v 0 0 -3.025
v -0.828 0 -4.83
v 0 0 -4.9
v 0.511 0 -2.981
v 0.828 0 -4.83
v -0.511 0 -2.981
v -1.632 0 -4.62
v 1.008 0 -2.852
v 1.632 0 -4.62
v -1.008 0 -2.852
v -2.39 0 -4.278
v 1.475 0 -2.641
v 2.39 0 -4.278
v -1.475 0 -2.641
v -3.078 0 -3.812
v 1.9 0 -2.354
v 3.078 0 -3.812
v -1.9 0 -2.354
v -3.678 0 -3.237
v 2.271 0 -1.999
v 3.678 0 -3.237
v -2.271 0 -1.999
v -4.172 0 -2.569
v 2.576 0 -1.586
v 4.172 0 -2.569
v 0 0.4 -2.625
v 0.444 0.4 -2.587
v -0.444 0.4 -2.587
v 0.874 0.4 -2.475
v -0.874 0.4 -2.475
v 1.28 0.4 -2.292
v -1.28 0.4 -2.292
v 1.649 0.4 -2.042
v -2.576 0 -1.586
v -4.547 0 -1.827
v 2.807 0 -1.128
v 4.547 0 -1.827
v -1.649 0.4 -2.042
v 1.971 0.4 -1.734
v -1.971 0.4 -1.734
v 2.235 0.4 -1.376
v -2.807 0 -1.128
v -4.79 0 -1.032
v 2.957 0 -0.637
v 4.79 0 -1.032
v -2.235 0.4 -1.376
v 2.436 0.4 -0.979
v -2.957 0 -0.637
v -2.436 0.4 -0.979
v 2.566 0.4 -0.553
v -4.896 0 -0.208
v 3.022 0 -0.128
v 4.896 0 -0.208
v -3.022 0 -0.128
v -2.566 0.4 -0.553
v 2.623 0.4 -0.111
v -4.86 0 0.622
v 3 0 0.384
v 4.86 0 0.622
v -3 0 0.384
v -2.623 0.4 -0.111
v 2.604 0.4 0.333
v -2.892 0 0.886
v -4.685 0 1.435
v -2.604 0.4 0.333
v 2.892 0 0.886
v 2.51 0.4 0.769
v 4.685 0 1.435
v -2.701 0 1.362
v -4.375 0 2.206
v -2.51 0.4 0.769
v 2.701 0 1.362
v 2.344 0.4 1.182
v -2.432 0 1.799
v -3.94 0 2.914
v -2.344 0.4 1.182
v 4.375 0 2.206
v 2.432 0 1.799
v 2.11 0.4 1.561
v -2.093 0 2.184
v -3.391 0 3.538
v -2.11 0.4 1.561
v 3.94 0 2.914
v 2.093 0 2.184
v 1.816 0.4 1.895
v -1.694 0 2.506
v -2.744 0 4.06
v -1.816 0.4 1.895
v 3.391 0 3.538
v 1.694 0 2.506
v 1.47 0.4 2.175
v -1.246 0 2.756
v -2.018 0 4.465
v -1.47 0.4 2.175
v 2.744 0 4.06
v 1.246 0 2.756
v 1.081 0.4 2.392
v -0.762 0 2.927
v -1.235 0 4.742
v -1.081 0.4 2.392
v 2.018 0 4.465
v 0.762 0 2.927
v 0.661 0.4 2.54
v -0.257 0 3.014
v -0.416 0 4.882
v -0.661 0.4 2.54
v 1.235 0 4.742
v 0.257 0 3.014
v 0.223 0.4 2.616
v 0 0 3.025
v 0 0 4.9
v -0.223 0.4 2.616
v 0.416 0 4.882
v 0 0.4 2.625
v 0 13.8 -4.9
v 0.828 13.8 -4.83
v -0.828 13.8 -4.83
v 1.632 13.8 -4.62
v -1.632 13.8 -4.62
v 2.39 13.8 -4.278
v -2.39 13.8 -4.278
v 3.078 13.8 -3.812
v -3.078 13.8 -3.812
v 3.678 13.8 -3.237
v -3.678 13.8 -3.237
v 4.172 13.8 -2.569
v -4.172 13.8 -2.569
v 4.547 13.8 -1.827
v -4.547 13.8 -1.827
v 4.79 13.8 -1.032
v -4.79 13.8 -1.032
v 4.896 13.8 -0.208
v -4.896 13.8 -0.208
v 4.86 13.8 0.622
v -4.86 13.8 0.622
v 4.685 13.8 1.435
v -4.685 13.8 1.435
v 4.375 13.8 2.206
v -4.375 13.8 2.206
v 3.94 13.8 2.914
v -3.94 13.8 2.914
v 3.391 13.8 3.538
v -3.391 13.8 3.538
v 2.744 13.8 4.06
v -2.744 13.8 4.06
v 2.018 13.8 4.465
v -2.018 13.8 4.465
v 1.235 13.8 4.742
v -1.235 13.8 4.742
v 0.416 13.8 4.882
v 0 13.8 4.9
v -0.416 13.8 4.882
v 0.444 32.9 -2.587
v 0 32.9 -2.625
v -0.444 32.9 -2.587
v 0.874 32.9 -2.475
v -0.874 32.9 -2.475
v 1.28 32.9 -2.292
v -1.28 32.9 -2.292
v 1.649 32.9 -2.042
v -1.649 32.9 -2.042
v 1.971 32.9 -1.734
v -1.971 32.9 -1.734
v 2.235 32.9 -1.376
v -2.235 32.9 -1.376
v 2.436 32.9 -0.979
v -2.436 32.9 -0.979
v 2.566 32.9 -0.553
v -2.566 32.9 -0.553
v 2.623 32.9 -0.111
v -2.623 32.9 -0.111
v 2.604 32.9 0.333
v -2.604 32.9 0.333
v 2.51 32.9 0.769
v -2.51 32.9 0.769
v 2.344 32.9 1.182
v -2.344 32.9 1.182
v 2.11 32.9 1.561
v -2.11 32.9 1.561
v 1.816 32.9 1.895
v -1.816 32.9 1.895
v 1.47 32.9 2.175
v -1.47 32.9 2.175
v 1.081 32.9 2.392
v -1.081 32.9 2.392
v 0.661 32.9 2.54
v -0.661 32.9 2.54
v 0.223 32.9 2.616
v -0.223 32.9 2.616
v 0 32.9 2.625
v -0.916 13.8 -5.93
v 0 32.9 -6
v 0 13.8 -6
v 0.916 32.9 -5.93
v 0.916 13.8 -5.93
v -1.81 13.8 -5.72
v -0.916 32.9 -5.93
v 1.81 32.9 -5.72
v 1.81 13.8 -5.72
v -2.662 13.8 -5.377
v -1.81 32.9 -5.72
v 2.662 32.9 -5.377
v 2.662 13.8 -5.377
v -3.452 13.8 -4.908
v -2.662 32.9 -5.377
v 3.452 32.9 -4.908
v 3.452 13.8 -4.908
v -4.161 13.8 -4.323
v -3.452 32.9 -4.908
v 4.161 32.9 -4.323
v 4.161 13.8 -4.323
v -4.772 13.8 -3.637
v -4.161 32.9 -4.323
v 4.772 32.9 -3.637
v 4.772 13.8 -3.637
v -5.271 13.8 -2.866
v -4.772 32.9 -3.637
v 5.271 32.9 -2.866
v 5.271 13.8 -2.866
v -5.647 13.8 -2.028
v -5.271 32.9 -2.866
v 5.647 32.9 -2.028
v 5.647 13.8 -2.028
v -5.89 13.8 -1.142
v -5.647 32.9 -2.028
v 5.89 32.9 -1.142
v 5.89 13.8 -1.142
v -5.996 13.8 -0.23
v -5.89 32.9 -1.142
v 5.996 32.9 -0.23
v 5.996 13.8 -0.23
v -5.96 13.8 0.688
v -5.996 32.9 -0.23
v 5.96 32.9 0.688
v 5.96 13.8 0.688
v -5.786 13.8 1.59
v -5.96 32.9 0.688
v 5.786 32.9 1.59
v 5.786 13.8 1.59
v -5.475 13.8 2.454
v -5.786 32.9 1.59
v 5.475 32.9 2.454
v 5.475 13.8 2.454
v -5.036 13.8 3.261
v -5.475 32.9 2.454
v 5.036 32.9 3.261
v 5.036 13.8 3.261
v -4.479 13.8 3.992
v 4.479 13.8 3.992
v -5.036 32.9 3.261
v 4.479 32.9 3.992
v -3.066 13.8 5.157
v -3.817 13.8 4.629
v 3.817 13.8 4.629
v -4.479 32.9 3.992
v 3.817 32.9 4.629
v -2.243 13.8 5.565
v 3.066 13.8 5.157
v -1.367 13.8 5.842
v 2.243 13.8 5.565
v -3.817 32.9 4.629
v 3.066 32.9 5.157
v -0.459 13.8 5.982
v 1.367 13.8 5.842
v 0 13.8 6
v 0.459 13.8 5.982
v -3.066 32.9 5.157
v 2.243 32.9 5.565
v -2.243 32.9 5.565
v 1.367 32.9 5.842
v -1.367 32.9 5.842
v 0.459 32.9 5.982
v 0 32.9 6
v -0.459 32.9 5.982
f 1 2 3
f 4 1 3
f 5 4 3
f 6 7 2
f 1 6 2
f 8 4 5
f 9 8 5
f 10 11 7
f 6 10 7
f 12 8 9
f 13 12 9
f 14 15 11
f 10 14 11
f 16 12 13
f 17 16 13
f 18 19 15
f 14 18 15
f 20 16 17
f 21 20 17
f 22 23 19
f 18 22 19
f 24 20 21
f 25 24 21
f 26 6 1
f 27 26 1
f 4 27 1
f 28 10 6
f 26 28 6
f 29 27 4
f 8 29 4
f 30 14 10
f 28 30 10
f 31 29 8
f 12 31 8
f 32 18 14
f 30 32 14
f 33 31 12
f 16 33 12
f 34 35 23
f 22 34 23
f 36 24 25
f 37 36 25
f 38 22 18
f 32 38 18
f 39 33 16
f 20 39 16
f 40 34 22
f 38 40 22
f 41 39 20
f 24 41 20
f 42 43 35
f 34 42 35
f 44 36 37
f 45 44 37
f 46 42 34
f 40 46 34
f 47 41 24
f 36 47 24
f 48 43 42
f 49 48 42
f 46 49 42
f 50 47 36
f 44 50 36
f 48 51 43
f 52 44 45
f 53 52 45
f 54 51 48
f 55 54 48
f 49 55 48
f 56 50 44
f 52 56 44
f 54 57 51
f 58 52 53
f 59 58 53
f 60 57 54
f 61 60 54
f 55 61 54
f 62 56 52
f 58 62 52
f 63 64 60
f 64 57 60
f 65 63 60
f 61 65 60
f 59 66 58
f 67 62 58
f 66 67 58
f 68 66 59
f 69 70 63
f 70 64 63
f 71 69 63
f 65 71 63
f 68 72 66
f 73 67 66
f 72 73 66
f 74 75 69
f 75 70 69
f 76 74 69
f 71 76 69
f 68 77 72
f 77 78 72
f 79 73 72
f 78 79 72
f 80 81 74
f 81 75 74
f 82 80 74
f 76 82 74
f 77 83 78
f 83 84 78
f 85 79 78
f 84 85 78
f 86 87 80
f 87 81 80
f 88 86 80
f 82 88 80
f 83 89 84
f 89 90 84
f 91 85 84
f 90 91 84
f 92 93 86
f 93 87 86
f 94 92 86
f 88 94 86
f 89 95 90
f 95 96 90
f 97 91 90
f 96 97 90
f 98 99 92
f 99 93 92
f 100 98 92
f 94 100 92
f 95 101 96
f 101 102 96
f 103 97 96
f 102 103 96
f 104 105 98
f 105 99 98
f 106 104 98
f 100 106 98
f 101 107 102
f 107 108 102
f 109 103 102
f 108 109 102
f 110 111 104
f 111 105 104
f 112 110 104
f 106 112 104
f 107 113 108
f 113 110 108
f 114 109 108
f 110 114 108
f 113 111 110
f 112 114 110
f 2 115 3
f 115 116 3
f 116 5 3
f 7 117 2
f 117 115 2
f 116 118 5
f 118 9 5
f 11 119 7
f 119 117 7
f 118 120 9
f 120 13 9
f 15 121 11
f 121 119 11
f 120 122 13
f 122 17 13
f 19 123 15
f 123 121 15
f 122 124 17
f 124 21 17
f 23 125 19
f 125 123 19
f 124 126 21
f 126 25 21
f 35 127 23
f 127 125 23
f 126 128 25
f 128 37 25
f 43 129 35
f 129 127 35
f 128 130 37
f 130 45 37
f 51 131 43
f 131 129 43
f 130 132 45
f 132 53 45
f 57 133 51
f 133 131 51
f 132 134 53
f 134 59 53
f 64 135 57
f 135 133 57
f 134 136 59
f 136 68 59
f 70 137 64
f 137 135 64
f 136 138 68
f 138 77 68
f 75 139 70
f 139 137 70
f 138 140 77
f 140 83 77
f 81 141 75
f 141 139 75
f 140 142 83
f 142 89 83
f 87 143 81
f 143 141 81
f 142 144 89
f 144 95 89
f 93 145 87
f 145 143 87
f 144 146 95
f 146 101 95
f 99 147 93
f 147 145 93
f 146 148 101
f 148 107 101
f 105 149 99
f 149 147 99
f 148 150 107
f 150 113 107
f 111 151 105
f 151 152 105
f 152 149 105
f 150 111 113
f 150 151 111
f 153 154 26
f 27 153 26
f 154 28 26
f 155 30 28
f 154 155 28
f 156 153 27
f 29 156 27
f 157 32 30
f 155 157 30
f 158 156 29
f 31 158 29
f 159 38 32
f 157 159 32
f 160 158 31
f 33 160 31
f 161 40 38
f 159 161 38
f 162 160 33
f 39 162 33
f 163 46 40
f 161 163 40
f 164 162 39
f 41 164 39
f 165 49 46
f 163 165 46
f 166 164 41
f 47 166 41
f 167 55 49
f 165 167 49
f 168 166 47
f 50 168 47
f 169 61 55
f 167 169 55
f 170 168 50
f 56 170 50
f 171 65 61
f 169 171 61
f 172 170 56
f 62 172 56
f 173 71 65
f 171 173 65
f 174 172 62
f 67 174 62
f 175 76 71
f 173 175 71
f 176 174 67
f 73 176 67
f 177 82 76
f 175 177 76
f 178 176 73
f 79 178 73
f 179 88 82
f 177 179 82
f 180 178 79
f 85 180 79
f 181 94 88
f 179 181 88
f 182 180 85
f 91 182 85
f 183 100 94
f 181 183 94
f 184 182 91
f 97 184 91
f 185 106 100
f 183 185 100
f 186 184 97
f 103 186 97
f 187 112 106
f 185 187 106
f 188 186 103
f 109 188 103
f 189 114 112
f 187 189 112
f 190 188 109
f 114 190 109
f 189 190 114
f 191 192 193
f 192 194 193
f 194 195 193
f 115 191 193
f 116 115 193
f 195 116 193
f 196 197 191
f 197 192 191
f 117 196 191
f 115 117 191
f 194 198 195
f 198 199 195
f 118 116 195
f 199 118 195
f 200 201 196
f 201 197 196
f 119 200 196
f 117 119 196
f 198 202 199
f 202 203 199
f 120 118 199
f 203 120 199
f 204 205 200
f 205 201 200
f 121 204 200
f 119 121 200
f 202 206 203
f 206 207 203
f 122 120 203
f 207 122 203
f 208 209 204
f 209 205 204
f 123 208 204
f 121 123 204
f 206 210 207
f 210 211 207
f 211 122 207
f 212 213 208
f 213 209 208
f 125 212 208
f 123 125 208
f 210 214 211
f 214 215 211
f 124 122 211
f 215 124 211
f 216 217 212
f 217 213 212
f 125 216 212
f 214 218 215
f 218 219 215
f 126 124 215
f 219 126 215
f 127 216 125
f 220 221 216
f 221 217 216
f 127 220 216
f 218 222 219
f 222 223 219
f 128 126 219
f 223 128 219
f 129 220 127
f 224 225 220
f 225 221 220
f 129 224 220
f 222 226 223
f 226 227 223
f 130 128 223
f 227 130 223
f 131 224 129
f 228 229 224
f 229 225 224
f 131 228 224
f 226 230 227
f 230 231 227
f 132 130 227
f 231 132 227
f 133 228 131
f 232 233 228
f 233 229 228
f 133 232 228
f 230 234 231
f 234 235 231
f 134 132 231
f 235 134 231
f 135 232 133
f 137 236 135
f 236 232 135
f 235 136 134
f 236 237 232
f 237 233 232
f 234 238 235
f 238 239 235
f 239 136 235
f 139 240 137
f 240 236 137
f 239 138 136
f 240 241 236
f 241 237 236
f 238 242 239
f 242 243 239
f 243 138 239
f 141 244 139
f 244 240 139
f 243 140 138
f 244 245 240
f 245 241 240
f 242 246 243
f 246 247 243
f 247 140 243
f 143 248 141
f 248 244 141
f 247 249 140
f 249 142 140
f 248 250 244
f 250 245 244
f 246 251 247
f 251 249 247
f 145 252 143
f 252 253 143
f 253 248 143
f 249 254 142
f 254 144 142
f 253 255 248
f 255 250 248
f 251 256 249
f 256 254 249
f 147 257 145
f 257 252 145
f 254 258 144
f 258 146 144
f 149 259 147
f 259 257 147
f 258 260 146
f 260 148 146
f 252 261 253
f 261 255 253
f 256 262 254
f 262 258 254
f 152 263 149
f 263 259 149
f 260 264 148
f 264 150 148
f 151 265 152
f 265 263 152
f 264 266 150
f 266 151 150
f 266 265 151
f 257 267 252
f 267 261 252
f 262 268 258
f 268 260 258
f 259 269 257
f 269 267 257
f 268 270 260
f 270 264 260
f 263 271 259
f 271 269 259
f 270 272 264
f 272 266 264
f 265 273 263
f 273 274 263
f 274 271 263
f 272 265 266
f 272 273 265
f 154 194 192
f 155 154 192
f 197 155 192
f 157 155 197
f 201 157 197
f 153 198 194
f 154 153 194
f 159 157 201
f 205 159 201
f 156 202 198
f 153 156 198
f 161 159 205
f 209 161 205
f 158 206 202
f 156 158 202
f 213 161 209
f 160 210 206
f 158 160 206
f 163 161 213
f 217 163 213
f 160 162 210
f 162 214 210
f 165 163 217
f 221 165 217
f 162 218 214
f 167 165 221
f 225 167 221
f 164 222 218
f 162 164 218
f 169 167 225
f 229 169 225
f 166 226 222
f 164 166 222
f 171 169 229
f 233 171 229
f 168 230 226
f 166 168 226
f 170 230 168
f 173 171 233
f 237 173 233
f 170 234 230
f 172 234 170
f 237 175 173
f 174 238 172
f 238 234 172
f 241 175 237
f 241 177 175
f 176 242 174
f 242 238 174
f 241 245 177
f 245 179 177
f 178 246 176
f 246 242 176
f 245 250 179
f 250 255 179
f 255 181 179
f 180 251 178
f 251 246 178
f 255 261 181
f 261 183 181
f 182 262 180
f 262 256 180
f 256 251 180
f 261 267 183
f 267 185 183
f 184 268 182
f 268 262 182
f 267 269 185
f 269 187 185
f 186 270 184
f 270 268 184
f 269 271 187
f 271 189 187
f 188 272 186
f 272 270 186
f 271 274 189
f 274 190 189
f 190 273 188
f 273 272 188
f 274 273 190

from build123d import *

# Parameters (mm, degrees)
SKETCH1_R           = 4.9
BOSS_EXTRUDE1_DEPTH = 13.8
SKETCH2_R           = 6
BOSS_EXTRUDE2_DEPTH = 19.1
SKETCH7_R           = 2.625
CUT_EXTRUDE1_DEPTH  = 33.9
CHAMFER1_SIZE       = 0.4


with BuildPart() as part:
    # Sketch1 → Boss-Extrude1 (new body)
    with BuildSketch(Plane(origin=(0, 0, 0), x_dir=(1, 0, 0), z_dir=(0, 1, 0))):
        Circle(SKETCH1_R)
    extrude(amount=BOSS_EXTRUDE1_DEPTH)

    # Sketch2 → Boss-Extrude2 (add)
    with BuildSketch(Plane(origin=(0, 13.8, 0), x_dir=(1, 0, 0), z_dir=(0, 1, 0))):
        Circle(SKETCH2_R)
    extrude(amount=BOSS_EXTRUDE2_DEPTH)

    # Sketch7 → Cut-Extrude1 (cut, through all)
    with BuildSketch(Plane(origin=(0, 0, 0), x_dir=(1, 0, 0), z_dir=(0, 1, 0))):
        Circle(SKETCH7_R)
    extrude(amount=CUT_EXTRUDE1_DEPTH, mode=Mode.SUBTRACT)

    # Chamfer1
    chamfer1_edges = [part.edges().sort_by_distance(p)[0] for p in [
        (-2.625, 0, 0),
    ]]
    chamfer(chamfer1_edges, length=CHAMFER1_SIZE)


solid = part.part
